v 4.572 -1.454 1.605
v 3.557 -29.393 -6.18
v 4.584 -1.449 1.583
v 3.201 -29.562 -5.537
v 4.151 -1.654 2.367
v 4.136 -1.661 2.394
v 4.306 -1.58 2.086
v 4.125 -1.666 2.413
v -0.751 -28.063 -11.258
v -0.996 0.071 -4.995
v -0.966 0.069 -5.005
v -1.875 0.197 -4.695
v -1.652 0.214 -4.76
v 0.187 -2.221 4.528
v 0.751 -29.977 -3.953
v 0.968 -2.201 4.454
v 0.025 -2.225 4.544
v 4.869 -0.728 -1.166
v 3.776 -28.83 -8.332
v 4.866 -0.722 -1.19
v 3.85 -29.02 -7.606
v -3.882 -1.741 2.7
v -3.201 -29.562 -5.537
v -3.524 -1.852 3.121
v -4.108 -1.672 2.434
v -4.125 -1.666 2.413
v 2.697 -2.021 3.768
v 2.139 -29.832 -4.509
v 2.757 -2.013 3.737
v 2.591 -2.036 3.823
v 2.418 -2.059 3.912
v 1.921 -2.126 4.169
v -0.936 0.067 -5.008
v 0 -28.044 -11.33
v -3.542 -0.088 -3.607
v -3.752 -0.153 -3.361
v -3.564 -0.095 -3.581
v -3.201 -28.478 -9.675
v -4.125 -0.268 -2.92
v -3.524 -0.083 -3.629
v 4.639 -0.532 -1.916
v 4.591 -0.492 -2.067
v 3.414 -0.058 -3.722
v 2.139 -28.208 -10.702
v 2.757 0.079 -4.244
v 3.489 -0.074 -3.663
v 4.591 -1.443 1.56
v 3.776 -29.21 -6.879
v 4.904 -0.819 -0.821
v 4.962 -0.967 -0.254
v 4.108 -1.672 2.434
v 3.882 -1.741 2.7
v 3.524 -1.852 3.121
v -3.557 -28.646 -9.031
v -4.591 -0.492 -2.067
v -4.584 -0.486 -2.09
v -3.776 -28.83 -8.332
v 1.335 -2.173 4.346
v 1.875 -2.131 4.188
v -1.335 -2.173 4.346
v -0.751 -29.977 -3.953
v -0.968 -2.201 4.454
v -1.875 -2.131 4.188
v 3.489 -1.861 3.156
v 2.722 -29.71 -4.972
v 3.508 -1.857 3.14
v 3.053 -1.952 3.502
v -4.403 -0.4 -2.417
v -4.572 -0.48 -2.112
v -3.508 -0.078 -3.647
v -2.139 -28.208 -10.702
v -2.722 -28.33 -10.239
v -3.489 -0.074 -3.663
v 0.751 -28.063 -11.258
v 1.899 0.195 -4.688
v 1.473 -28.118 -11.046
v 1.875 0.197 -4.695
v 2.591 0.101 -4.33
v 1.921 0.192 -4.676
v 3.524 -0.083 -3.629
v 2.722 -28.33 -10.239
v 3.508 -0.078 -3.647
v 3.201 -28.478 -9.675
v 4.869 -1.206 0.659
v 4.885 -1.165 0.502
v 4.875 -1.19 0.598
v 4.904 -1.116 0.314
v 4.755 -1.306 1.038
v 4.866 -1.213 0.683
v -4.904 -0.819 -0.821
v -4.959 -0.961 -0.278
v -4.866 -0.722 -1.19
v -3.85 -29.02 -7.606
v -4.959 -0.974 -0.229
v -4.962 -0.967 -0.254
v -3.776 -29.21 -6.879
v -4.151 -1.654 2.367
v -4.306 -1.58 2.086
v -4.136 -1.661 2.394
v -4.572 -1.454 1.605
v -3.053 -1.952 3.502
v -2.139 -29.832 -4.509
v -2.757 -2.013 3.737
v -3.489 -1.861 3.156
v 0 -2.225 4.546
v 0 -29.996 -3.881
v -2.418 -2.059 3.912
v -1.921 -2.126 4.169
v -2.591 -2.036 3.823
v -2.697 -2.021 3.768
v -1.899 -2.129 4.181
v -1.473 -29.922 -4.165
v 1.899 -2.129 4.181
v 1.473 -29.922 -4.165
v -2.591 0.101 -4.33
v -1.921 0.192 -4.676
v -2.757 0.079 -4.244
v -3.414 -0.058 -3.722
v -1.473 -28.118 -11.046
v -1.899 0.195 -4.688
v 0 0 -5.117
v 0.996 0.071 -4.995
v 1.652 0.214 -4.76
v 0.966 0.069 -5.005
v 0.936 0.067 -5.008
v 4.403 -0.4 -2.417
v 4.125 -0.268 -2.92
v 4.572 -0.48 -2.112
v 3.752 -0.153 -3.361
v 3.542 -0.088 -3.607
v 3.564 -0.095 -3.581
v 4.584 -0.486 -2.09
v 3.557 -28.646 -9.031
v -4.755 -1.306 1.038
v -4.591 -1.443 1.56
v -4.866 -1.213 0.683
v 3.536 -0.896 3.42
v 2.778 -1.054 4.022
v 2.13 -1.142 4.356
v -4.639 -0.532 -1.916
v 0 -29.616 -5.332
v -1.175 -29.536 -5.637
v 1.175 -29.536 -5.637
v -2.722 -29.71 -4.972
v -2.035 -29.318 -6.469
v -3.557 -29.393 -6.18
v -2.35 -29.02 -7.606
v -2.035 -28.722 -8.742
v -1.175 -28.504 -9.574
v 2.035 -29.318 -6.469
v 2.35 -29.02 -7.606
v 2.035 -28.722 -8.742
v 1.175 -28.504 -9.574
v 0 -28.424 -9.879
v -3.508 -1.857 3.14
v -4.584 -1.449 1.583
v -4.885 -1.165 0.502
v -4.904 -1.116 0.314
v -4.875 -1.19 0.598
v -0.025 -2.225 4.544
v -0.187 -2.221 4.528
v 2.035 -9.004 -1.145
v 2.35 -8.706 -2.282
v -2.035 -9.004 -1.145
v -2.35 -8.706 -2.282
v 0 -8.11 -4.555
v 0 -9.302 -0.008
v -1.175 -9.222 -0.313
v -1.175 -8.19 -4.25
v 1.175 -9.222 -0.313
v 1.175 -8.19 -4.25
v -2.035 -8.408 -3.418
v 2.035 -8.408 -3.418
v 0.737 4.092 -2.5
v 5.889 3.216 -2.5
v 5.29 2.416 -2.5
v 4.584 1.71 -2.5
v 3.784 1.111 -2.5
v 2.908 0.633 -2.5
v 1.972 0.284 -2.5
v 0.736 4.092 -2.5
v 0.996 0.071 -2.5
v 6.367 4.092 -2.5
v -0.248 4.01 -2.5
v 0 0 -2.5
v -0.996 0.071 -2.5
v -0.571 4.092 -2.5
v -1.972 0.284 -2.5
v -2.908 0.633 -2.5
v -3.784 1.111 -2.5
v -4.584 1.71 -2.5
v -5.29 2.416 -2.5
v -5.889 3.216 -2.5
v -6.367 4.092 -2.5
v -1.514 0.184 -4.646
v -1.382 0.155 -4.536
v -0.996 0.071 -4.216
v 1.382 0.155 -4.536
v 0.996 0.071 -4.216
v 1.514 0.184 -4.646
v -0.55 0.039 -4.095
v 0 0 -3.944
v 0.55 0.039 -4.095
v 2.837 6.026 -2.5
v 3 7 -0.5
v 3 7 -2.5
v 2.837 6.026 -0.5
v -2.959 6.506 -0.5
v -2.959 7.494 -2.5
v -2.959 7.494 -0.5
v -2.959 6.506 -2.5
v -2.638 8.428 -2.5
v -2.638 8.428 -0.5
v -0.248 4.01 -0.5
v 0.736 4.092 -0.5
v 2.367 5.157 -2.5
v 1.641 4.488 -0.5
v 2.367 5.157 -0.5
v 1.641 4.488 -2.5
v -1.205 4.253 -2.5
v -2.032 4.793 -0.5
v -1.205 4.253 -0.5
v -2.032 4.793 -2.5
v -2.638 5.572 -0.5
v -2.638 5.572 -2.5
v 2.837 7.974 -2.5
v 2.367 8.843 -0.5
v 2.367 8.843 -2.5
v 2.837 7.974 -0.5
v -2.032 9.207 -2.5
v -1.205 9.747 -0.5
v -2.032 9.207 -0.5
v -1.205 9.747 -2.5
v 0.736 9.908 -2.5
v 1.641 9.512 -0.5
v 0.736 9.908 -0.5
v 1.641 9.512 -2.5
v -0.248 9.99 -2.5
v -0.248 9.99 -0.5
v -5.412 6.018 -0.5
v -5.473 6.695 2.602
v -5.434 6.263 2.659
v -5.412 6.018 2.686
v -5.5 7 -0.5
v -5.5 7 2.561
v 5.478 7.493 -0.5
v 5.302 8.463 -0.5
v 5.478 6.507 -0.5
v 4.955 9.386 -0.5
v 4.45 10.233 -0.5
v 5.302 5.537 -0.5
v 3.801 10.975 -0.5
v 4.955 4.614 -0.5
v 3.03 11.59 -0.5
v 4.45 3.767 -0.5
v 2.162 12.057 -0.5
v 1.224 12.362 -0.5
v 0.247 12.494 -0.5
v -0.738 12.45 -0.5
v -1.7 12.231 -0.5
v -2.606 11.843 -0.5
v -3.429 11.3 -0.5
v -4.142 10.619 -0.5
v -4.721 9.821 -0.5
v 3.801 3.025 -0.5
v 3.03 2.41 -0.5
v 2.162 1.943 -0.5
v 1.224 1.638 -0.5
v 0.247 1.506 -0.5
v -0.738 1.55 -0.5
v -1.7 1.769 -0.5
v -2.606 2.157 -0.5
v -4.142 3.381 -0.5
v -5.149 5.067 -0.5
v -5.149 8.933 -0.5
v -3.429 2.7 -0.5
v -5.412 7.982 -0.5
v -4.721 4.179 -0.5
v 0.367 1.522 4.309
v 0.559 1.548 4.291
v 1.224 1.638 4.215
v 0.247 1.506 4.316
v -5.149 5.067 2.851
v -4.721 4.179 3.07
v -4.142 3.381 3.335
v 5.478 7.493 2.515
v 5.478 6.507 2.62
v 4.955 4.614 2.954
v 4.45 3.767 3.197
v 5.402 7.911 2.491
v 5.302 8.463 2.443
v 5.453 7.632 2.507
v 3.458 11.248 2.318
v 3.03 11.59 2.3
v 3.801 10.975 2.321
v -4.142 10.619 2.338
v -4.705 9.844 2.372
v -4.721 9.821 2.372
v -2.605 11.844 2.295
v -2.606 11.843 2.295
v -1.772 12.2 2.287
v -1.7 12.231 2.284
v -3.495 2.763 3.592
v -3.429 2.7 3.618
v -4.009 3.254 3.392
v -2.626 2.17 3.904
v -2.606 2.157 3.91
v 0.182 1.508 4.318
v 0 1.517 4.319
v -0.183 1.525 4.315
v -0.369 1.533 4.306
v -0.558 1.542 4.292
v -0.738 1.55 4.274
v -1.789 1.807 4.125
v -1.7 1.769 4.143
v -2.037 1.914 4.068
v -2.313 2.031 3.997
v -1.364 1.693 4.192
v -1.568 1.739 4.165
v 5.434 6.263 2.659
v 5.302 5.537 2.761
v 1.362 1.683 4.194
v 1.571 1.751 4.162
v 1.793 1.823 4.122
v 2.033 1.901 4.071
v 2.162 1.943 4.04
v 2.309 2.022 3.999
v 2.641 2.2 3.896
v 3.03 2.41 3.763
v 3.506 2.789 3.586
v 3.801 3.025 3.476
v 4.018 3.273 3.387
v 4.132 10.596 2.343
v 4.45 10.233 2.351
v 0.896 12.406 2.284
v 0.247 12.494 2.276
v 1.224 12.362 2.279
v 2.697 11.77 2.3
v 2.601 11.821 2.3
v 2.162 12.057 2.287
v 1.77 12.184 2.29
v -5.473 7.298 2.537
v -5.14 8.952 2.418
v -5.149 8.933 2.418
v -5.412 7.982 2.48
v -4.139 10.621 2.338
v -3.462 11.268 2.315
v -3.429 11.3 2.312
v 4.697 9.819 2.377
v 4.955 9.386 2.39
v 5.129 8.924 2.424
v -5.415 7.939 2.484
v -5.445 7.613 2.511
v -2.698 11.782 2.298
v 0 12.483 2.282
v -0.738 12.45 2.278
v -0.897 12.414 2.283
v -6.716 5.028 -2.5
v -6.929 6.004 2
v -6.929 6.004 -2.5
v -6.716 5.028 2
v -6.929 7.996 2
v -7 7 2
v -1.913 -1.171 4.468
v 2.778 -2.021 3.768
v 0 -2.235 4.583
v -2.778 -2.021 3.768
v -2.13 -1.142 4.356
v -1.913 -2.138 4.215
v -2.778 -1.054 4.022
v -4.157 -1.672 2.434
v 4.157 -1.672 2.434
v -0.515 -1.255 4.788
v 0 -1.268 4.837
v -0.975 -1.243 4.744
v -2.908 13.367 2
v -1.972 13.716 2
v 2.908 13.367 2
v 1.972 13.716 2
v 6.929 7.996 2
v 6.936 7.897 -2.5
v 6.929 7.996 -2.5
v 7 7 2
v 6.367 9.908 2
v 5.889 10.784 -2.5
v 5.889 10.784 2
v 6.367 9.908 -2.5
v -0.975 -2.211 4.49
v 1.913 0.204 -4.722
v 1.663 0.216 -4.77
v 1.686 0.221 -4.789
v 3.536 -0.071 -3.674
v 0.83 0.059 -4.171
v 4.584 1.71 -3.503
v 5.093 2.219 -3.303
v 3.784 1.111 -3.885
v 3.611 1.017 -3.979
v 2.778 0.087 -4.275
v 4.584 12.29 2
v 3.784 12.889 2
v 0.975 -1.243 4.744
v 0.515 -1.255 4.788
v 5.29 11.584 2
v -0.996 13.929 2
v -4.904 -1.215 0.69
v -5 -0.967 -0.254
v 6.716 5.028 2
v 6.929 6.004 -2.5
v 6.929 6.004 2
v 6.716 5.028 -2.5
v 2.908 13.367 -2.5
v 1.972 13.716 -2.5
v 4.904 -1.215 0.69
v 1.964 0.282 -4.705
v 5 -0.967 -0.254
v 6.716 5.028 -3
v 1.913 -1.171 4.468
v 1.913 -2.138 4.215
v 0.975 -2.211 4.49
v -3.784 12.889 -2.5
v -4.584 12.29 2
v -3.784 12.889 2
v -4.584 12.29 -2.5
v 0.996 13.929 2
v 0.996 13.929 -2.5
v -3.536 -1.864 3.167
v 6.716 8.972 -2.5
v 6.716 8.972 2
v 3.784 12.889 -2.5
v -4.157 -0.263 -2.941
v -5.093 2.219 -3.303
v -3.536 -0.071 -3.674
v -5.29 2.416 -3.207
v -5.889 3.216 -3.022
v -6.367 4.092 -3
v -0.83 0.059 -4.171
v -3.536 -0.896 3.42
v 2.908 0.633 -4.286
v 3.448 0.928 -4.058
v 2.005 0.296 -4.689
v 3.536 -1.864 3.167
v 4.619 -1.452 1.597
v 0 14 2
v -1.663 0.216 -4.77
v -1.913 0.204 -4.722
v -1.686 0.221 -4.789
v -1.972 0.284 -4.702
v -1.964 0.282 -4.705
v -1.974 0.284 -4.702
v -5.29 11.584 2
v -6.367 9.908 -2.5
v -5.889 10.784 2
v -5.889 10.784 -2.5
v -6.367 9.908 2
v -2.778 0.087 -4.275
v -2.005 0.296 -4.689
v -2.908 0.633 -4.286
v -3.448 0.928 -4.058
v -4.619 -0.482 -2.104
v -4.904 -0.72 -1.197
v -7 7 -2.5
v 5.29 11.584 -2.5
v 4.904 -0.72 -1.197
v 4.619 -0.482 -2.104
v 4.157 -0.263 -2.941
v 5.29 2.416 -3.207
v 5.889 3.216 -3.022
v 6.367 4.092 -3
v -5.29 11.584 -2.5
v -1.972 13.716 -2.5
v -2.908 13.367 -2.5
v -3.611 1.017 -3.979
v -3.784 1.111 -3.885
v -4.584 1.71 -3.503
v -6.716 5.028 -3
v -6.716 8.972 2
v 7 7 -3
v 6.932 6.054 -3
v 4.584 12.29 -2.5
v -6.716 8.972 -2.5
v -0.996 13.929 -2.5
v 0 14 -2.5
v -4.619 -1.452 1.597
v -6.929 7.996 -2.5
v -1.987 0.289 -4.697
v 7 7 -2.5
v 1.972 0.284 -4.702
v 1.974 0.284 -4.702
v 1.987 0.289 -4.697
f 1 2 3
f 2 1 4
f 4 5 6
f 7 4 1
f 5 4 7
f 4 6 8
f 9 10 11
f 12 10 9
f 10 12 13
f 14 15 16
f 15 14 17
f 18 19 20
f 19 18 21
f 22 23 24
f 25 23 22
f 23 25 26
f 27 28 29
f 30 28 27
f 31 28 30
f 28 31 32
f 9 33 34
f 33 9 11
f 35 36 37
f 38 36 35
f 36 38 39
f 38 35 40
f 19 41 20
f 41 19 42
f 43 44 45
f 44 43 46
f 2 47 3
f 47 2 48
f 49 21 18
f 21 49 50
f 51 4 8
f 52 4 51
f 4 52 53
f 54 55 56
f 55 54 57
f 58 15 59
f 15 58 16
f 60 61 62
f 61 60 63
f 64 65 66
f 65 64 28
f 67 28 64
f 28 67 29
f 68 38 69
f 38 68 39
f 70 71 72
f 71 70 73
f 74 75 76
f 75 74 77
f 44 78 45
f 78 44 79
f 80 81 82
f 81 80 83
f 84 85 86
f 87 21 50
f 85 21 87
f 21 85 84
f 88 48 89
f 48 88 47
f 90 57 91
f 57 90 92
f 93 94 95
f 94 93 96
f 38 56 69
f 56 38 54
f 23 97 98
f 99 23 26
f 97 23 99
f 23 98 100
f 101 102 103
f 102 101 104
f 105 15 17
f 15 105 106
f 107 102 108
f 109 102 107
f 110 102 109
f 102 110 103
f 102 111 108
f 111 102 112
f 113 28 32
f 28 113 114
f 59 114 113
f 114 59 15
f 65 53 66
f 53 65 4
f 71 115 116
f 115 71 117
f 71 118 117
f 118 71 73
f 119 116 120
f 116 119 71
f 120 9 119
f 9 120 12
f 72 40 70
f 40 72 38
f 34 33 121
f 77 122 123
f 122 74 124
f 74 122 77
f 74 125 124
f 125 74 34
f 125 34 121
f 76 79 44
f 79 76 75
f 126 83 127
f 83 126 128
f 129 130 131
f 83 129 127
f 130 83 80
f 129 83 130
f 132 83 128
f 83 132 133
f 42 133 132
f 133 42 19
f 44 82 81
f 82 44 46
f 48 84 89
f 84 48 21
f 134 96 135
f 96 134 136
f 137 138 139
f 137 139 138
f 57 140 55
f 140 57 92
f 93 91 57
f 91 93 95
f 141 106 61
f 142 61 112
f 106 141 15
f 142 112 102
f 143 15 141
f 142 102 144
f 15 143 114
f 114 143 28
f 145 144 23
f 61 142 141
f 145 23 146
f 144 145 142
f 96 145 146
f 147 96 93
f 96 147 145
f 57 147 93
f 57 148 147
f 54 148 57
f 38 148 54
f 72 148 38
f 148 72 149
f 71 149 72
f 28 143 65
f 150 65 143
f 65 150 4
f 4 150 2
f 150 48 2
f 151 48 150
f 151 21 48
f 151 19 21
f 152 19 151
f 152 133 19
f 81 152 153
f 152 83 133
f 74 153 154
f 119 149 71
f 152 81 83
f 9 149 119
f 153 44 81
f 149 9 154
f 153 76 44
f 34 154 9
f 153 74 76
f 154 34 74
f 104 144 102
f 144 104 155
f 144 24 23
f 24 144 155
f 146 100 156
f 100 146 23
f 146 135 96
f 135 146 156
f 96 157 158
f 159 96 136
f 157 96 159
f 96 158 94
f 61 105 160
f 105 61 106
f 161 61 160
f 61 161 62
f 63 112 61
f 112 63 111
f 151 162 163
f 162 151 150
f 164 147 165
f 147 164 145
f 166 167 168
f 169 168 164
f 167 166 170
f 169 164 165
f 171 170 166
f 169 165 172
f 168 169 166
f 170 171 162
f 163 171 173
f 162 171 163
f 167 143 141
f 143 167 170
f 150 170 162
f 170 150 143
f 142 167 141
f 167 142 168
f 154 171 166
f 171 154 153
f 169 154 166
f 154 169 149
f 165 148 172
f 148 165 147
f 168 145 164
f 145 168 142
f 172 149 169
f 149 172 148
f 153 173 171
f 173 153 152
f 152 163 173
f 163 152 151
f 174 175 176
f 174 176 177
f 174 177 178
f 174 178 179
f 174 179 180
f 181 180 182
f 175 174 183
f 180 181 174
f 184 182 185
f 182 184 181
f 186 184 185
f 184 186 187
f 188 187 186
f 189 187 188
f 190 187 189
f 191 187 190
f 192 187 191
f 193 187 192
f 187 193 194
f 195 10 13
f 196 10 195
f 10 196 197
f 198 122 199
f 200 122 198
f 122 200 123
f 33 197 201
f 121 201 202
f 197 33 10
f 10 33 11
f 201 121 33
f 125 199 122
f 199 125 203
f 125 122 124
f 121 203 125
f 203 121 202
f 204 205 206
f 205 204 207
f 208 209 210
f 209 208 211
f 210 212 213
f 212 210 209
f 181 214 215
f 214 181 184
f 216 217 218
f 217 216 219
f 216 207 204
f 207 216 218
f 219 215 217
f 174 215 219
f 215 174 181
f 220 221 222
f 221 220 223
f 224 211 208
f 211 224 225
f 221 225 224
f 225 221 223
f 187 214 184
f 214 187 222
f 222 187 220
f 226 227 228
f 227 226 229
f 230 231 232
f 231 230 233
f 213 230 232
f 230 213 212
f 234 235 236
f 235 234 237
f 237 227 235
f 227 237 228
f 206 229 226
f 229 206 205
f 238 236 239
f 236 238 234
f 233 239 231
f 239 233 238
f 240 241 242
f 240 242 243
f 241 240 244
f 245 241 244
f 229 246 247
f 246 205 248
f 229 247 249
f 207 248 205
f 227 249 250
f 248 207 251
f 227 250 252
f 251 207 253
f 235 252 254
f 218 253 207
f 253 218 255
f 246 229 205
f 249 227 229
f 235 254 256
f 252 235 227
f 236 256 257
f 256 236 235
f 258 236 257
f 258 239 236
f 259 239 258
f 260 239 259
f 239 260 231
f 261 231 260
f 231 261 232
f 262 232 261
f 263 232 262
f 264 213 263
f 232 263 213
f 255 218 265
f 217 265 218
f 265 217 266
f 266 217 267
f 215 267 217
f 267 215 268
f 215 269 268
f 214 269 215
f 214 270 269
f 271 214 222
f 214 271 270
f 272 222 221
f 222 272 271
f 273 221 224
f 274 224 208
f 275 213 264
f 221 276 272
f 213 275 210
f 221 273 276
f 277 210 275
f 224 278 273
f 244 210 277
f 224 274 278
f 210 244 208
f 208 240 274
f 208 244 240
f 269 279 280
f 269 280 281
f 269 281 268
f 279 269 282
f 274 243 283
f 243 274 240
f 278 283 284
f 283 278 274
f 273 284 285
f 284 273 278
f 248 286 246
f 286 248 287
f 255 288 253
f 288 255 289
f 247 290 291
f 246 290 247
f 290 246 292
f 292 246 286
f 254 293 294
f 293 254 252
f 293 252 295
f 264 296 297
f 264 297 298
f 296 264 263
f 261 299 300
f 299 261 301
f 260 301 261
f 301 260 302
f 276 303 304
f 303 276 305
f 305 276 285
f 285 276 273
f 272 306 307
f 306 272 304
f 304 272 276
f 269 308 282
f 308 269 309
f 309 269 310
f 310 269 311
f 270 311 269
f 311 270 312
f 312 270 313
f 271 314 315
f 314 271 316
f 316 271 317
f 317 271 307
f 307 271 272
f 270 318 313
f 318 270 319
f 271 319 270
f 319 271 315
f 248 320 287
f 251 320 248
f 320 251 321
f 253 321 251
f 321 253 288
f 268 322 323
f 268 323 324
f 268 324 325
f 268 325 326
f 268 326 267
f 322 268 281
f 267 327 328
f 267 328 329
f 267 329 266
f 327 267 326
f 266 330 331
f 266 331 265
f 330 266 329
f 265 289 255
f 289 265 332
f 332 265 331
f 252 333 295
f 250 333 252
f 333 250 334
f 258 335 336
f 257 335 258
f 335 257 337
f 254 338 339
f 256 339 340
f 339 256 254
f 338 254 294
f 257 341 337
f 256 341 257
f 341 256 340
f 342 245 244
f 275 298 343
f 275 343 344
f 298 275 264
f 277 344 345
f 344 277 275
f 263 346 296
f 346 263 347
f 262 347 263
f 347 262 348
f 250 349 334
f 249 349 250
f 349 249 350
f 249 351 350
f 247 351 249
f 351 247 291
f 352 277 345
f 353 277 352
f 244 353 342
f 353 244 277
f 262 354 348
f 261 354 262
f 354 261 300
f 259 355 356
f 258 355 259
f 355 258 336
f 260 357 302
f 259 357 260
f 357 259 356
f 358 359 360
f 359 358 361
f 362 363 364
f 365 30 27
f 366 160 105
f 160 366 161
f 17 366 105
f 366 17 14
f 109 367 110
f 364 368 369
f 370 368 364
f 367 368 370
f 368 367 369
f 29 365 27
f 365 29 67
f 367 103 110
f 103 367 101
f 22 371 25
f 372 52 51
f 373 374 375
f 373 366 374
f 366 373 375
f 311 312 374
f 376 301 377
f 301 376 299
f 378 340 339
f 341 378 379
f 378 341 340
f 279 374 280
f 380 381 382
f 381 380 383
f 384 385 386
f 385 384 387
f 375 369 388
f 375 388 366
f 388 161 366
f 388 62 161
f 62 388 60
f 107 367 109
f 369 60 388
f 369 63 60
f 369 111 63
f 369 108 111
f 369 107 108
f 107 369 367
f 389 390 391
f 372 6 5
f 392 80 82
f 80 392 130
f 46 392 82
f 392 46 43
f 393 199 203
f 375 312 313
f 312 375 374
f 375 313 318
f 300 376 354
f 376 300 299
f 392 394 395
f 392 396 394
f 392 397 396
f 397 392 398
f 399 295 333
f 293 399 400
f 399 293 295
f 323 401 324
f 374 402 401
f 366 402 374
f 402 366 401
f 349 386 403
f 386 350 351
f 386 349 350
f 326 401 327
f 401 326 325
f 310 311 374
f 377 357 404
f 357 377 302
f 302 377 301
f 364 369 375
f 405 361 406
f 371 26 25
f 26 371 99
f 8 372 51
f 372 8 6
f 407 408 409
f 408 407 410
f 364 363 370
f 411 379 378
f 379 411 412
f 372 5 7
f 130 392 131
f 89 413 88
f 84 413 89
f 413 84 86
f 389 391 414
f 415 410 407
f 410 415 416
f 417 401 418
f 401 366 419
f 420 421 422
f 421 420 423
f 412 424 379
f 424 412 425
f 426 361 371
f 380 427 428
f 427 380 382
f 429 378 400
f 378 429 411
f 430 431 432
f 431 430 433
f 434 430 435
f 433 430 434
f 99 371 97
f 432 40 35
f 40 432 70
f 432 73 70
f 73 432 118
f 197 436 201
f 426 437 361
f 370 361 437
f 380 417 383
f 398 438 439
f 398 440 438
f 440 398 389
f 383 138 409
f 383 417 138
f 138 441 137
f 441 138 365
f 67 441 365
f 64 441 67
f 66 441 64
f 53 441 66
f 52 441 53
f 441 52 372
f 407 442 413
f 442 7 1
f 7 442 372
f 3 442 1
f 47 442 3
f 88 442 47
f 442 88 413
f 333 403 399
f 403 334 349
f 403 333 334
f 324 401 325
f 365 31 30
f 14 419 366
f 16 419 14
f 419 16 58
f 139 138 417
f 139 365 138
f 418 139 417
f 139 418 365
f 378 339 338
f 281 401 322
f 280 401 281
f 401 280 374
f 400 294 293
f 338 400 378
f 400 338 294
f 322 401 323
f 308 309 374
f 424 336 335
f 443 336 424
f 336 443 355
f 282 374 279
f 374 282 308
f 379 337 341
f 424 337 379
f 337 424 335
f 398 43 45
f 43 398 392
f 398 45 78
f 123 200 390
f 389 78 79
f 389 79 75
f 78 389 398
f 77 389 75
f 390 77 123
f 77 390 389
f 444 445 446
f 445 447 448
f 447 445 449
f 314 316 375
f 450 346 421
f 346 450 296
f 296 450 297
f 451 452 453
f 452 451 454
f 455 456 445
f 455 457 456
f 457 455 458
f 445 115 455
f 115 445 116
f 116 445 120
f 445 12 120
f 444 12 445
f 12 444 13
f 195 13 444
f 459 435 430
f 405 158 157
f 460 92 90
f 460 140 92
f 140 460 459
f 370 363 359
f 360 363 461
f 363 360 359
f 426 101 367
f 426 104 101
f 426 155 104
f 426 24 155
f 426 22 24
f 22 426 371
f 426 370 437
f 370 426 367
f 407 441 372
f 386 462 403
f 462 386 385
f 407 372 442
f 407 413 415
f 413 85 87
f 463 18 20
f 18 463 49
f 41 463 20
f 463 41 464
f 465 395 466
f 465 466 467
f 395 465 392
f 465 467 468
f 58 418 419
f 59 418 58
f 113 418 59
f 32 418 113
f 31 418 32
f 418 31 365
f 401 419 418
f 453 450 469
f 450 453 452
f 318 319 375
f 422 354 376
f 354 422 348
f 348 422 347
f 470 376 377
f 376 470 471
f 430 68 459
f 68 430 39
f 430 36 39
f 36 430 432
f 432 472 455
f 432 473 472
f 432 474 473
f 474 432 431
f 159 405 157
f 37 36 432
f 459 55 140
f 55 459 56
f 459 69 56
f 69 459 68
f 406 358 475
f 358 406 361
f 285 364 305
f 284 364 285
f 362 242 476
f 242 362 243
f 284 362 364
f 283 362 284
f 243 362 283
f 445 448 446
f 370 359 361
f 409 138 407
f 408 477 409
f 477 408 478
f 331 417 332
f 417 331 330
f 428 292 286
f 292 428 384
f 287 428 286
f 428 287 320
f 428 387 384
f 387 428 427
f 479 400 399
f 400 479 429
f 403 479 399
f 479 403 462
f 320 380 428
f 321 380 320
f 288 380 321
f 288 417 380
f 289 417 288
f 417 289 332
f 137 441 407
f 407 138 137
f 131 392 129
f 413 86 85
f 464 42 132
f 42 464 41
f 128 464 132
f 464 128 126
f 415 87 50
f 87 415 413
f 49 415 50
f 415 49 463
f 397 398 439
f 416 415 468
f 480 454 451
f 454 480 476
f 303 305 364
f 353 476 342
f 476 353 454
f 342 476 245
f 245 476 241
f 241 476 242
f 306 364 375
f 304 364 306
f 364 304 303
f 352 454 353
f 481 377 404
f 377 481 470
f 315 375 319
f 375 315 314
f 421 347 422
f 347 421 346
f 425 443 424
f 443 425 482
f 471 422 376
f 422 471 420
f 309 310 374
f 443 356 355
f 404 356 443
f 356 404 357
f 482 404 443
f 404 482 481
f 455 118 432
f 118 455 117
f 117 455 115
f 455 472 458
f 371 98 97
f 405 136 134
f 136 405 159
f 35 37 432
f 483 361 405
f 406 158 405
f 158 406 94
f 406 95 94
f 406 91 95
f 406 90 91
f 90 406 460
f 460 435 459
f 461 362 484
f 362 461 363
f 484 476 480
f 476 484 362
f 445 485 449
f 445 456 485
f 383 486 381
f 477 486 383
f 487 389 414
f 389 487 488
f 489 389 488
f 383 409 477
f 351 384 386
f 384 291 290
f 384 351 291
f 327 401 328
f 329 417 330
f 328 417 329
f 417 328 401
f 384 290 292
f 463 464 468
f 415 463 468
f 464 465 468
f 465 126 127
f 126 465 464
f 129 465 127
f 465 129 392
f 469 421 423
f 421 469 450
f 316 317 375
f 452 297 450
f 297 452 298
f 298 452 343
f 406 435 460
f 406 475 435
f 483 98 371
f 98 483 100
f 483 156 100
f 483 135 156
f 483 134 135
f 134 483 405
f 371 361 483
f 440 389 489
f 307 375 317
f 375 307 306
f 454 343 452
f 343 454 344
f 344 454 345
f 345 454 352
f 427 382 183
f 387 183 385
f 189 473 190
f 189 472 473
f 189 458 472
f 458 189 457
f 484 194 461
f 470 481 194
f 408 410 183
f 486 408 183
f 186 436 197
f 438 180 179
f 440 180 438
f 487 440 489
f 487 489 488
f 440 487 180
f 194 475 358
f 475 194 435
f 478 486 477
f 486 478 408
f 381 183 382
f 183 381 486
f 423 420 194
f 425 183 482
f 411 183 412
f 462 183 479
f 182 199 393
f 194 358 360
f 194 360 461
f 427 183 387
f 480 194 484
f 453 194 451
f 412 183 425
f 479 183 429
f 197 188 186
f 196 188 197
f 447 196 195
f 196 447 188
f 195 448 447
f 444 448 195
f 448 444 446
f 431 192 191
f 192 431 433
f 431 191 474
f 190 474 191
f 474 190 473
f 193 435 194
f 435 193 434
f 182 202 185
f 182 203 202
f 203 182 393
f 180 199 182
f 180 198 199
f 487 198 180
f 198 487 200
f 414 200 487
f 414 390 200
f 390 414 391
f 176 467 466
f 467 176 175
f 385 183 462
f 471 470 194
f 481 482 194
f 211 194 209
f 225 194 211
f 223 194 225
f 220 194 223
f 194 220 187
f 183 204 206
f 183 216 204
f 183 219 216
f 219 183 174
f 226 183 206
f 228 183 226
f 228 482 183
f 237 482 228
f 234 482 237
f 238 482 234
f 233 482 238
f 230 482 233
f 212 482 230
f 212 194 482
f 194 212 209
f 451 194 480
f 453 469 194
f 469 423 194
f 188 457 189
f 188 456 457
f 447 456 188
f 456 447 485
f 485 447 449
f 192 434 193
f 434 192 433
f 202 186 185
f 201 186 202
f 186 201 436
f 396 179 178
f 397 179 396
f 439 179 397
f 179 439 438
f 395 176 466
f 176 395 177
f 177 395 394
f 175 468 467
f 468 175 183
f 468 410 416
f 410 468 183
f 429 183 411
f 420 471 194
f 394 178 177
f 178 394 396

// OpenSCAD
stayAngle = asin((150 - 60)/355); // rear
// stayAngle = 0; // front
$fs = 1;
$fa = 6;

len = 30;
wid = 10;
stayD = 4.7;
offset = -tan(stayAngle) * len;
smoffset = sin(stayAngle) * wid;
module squaredCircle(len, rot=[0,0,0], $fn=12) {
    hull() {
        rotate(rot) cylinder(d=wid/cos(180/$fn), h=len, center=false, $fn=$fn);
    }
}
rotate([90,0,0]) intersection() {

    union() {
        difference() {
            rotate([stayAngle,0,0]) difference() {
                rotate([0,0,180/8]) cylinder(d1=wid, d2=(stayD + 3), h=len, center=false);
                translate([0, 0, 9]) cylinder(d=stayD, h=len+1, center=false, $fn=12);

            }
            translate([0,-wid/4 - 5,-(wid+4)/2]) rotate([90]) cylinder(d=wid+4, h=10, center=true);

        }


        translate([0,2,-2]) {
            difference() {
                hull() {
                    translate([0,-2,2]) rotate([stayAngle,0,0]) cylinder(d=wid, h=1, center=false);;
                    translate([0,-wid/4,-wid/2]) rotate([90,0,0]) cylinder(d=wid+4, h=wid/2, center=true);
                }
                translate([0,-wid/4,-wid/2]) rotate([90,0,0]) {
                    cylinder(d=6, h=25, center=true);
                    rotate([0,180,0]) cylinder(d=11, h=wid, center=false);
                }
                translate([0,-wid/4 - 7,-wid/2]) rotate([90]) cylinder(d=wid+4, h=10, center=true);
            }
        }
    }
    translate([-50,-wid/2+offset+0.3,-50]) cube(size=[100, wid -offset, 100], center=false);
}
